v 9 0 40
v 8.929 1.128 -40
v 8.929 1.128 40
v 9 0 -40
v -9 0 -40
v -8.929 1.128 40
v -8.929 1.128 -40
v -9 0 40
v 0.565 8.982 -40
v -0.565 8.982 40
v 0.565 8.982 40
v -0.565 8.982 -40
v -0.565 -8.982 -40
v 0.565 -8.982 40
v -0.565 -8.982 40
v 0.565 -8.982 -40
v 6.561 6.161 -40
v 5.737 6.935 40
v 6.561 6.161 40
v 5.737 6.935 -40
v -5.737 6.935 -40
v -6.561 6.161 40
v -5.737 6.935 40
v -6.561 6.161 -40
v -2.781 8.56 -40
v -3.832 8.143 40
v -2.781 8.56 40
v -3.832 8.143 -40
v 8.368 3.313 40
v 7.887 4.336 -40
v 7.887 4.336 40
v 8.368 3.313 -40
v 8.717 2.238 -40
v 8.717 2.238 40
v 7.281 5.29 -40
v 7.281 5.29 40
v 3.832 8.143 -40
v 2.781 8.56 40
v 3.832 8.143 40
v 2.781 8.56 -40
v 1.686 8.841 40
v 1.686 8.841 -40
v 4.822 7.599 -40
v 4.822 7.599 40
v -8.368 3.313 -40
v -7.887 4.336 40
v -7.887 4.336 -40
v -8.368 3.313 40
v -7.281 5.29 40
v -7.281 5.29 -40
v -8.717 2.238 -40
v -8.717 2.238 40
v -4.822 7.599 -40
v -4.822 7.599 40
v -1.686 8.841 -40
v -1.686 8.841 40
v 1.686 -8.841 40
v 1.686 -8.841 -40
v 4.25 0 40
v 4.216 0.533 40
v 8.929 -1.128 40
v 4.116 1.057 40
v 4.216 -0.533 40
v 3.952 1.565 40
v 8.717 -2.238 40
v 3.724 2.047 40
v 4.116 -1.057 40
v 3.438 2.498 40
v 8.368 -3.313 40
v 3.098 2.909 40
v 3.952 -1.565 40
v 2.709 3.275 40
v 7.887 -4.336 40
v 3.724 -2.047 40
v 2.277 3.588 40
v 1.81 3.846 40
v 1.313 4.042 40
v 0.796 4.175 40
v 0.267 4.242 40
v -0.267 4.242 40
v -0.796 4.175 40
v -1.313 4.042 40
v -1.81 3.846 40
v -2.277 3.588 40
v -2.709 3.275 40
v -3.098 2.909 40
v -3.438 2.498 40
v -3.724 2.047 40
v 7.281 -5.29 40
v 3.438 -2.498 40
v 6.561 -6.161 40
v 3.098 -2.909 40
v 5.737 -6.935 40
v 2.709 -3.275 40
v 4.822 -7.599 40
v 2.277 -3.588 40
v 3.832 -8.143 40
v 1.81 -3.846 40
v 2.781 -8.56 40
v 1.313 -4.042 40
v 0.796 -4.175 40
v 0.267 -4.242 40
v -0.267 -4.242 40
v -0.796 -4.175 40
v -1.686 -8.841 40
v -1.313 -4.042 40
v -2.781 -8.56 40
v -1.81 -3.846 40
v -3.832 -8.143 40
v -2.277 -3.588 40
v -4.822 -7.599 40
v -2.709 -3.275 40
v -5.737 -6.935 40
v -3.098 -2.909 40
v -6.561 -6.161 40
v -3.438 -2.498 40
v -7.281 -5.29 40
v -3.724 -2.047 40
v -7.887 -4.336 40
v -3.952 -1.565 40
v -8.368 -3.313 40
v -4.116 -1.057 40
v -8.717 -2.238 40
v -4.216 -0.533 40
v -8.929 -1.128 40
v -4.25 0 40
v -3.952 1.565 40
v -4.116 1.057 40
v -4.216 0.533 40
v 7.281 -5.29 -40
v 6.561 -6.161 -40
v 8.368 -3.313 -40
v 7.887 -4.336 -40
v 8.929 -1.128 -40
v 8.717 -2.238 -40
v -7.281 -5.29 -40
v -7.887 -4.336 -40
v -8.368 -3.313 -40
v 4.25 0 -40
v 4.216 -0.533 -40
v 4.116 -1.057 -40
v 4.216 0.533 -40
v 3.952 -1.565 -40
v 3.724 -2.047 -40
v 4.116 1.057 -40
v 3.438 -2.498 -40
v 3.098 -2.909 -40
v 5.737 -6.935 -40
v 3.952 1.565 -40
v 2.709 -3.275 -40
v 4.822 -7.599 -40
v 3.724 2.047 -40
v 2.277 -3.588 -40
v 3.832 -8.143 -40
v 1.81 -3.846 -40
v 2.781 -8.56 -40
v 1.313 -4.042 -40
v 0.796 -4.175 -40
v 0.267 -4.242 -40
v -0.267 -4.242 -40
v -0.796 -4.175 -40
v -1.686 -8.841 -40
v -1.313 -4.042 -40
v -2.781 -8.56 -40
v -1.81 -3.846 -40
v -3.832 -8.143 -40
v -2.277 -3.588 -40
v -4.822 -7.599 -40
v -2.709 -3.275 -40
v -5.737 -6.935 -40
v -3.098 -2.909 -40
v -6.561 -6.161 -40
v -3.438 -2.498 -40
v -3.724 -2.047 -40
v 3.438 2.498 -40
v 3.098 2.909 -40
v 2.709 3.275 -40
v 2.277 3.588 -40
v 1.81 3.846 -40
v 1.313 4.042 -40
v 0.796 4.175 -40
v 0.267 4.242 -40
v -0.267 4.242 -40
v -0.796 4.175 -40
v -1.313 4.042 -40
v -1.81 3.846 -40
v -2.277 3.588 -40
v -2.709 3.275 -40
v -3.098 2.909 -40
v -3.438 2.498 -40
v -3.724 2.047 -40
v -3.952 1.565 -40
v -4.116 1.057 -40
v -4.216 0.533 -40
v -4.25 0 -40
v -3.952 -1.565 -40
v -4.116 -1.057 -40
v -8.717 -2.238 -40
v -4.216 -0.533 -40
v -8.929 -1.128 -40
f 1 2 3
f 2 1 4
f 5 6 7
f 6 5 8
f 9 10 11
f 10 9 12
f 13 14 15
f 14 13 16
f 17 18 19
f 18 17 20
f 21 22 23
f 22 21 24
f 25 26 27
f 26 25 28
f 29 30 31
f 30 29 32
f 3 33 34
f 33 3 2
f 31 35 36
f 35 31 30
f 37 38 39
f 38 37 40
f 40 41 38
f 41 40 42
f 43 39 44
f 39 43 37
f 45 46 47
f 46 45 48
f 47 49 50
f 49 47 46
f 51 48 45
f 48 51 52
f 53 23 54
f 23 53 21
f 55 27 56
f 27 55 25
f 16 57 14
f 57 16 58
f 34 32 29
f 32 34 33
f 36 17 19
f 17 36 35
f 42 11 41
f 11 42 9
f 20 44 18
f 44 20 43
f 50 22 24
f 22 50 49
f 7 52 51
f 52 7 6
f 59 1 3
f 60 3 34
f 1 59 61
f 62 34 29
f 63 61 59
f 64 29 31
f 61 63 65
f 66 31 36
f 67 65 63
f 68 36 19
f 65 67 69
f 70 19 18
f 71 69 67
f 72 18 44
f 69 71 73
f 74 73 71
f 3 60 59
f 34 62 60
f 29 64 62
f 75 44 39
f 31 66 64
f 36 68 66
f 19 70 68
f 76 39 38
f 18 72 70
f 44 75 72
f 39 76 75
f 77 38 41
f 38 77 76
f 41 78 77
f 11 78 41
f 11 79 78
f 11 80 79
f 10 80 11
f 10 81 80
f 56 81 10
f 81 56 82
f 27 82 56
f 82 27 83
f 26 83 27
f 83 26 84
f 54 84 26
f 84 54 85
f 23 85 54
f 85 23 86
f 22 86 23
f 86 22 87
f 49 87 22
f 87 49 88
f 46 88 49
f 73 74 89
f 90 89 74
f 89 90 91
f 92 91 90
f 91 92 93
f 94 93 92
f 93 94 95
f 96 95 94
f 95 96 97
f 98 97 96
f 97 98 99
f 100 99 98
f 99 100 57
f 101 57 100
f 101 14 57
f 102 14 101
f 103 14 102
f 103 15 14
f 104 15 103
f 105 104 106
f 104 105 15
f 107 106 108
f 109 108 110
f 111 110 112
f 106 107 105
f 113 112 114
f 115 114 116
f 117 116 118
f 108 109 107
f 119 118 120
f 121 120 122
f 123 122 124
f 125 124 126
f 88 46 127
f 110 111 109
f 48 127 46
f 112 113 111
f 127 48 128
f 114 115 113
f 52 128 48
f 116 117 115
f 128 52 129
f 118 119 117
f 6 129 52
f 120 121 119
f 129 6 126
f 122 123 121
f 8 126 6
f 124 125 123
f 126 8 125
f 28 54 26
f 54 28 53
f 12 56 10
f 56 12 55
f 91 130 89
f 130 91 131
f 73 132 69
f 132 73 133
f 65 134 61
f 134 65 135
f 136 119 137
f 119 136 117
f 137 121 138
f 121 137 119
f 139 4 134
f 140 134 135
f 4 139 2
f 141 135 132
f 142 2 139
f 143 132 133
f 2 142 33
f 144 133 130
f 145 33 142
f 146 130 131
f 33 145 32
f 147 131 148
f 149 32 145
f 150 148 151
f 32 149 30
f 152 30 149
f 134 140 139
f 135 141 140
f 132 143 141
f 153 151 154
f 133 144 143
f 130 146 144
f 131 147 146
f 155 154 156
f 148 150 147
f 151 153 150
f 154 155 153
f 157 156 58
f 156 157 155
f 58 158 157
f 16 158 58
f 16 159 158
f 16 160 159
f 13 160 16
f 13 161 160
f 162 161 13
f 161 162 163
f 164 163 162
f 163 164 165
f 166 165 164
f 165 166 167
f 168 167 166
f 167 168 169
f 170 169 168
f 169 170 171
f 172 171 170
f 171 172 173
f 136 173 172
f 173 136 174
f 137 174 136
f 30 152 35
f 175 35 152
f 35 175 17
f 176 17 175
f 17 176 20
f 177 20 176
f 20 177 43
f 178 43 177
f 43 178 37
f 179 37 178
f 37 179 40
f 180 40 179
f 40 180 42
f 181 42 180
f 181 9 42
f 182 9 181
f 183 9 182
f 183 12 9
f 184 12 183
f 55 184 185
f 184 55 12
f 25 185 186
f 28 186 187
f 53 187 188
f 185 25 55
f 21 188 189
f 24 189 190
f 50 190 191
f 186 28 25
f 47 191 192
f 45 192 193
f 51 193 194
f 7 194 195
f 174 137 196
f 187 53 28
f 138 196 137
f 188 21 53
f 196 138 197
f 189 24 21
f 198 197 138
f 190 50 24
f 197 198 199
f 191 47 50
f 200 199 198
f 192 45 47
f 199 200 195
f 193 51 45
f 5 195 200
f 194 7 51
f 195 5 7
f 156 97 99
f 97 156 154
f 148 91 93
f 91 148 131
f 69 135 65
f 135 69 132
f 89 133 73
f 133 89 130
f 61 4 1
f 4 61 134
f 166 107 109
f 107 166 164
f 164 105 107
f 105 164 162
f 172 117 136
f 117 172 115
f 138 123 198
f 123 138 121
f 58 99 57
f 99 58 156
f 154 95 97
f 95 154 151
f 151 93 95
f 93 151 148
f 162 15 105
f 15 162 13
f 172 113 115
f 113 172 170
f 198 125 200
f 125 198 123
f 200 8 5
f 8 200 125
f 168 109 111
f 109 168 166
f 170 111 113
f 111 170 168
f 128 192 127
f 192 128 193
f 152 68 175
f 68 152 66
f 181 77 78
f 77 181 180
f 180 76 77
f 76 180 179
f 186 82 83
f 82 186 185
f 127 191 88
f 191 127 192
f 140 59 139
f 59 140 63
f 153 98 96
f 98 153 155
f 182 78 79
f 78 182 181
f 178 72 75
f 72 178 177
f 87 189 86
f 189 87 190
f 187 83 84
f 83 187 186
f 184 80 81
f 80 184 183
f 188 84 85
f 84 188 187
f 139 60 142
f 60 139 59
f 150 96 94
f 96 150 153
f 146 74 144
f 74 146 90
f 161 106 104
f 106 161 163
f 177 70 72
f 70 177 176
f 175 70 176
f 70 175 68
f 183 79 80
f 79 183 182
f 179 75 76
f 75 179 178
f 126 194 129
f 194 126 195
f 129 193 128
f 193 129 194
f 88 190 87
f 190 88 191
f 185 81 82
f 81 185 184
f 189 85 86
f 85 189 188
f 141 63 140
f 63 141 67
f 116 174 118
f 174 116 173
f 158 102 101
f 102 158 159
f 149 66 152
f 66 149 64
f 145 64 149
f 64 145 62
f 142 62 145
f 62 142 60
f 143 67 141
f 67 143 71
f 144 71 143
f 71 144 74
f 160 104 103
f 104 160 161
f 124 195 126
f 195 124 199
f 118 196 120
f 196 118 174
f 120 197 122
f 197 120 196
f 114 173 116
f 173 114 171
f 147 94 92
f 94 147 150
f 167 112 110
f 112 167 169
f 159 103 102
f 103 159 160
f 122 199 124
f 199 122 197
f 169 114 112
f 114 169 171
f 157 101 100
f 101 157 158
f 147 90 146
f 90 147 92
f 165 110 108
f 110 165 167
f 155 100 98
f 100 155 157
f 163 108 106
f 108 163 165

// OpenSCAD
$fn = 50;


difference() {
	union() {
		translate(v = [0, 0, -40.0000000000]) {
			cylinder(h = 80, r = 9.0000000000);
		}
	}
	union() {
		translate(v = [0, 0, -100.0000000000]) {
			cylinder(h = 200, r = 4.2500000000);
		}
	}
}
